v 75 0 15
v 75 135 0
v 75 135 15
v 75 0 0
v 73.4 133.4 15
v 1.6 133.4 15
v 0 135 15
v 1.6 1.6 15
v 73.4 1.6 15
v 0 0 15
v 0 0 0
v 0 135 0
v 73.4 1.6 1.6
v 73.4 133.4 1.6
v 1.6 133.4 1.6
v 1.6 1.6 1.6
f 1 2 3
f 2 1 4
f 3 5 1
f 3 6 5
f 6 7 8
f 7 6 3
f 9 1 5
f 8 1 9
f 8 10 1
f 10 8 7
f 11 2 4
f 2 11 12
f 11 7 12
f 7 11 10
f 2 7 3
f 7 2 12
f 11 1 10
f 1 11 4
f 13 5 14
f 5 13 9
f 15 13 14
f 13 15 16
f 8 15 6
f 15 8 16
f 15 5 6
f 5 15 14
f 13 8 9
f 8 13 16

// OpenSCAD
include <boardgame_insert_toolkit_lib.2.scad>;

// determines whether lids are output.
g_b_print_lid = true;

// determines whether boxes are output.
g_b_print_box = true;

// Focus on one box
g_isolated_print_box = "";

// Used to visualize how all of the boxes fit together.
g_b_visualization = false;

// this is the outer wall thickness.
// Default = 1.5mm
g_wall_thickness = 1.6;

// The tolerance value is extra space put between planes of the lid and box
// that fit together. Increase the tolerance to loosen the fit and decrease it
// to tighten it.
//
// Note that the tolerance is applied exclusively to the lid.
// So if the lid is too tight or too loose, change this value ( up for looser
// fit, down for tighter fit ) and you only need to reprint the lid.
//
// The exception is the stackable box, where the bottom of the box is the lid
// of the box below, in which case the tolerance also affects that box bottom.
//
g_tolerance = 0.15;

// This adjusts the position of the lid detents downward.
// The larger the value, the bigger the gap between the lid and the box.
g_tolerance_detents_pos = 0.1;

data = [
  [
    "simple box",
    [
      [BOX_SIZE_XYZ, [75, 135, 15.0]],
      [BOX_NO_LID_B, t],
      [
        BOX_COMPONENT,
        [
          [
            CMP_COMPARTMENT_SIZE_XYZ,
            [71.8, 131.8, 13.4]
          ]
        ]
      ]
    ]
  ]
];

MakeAll();
